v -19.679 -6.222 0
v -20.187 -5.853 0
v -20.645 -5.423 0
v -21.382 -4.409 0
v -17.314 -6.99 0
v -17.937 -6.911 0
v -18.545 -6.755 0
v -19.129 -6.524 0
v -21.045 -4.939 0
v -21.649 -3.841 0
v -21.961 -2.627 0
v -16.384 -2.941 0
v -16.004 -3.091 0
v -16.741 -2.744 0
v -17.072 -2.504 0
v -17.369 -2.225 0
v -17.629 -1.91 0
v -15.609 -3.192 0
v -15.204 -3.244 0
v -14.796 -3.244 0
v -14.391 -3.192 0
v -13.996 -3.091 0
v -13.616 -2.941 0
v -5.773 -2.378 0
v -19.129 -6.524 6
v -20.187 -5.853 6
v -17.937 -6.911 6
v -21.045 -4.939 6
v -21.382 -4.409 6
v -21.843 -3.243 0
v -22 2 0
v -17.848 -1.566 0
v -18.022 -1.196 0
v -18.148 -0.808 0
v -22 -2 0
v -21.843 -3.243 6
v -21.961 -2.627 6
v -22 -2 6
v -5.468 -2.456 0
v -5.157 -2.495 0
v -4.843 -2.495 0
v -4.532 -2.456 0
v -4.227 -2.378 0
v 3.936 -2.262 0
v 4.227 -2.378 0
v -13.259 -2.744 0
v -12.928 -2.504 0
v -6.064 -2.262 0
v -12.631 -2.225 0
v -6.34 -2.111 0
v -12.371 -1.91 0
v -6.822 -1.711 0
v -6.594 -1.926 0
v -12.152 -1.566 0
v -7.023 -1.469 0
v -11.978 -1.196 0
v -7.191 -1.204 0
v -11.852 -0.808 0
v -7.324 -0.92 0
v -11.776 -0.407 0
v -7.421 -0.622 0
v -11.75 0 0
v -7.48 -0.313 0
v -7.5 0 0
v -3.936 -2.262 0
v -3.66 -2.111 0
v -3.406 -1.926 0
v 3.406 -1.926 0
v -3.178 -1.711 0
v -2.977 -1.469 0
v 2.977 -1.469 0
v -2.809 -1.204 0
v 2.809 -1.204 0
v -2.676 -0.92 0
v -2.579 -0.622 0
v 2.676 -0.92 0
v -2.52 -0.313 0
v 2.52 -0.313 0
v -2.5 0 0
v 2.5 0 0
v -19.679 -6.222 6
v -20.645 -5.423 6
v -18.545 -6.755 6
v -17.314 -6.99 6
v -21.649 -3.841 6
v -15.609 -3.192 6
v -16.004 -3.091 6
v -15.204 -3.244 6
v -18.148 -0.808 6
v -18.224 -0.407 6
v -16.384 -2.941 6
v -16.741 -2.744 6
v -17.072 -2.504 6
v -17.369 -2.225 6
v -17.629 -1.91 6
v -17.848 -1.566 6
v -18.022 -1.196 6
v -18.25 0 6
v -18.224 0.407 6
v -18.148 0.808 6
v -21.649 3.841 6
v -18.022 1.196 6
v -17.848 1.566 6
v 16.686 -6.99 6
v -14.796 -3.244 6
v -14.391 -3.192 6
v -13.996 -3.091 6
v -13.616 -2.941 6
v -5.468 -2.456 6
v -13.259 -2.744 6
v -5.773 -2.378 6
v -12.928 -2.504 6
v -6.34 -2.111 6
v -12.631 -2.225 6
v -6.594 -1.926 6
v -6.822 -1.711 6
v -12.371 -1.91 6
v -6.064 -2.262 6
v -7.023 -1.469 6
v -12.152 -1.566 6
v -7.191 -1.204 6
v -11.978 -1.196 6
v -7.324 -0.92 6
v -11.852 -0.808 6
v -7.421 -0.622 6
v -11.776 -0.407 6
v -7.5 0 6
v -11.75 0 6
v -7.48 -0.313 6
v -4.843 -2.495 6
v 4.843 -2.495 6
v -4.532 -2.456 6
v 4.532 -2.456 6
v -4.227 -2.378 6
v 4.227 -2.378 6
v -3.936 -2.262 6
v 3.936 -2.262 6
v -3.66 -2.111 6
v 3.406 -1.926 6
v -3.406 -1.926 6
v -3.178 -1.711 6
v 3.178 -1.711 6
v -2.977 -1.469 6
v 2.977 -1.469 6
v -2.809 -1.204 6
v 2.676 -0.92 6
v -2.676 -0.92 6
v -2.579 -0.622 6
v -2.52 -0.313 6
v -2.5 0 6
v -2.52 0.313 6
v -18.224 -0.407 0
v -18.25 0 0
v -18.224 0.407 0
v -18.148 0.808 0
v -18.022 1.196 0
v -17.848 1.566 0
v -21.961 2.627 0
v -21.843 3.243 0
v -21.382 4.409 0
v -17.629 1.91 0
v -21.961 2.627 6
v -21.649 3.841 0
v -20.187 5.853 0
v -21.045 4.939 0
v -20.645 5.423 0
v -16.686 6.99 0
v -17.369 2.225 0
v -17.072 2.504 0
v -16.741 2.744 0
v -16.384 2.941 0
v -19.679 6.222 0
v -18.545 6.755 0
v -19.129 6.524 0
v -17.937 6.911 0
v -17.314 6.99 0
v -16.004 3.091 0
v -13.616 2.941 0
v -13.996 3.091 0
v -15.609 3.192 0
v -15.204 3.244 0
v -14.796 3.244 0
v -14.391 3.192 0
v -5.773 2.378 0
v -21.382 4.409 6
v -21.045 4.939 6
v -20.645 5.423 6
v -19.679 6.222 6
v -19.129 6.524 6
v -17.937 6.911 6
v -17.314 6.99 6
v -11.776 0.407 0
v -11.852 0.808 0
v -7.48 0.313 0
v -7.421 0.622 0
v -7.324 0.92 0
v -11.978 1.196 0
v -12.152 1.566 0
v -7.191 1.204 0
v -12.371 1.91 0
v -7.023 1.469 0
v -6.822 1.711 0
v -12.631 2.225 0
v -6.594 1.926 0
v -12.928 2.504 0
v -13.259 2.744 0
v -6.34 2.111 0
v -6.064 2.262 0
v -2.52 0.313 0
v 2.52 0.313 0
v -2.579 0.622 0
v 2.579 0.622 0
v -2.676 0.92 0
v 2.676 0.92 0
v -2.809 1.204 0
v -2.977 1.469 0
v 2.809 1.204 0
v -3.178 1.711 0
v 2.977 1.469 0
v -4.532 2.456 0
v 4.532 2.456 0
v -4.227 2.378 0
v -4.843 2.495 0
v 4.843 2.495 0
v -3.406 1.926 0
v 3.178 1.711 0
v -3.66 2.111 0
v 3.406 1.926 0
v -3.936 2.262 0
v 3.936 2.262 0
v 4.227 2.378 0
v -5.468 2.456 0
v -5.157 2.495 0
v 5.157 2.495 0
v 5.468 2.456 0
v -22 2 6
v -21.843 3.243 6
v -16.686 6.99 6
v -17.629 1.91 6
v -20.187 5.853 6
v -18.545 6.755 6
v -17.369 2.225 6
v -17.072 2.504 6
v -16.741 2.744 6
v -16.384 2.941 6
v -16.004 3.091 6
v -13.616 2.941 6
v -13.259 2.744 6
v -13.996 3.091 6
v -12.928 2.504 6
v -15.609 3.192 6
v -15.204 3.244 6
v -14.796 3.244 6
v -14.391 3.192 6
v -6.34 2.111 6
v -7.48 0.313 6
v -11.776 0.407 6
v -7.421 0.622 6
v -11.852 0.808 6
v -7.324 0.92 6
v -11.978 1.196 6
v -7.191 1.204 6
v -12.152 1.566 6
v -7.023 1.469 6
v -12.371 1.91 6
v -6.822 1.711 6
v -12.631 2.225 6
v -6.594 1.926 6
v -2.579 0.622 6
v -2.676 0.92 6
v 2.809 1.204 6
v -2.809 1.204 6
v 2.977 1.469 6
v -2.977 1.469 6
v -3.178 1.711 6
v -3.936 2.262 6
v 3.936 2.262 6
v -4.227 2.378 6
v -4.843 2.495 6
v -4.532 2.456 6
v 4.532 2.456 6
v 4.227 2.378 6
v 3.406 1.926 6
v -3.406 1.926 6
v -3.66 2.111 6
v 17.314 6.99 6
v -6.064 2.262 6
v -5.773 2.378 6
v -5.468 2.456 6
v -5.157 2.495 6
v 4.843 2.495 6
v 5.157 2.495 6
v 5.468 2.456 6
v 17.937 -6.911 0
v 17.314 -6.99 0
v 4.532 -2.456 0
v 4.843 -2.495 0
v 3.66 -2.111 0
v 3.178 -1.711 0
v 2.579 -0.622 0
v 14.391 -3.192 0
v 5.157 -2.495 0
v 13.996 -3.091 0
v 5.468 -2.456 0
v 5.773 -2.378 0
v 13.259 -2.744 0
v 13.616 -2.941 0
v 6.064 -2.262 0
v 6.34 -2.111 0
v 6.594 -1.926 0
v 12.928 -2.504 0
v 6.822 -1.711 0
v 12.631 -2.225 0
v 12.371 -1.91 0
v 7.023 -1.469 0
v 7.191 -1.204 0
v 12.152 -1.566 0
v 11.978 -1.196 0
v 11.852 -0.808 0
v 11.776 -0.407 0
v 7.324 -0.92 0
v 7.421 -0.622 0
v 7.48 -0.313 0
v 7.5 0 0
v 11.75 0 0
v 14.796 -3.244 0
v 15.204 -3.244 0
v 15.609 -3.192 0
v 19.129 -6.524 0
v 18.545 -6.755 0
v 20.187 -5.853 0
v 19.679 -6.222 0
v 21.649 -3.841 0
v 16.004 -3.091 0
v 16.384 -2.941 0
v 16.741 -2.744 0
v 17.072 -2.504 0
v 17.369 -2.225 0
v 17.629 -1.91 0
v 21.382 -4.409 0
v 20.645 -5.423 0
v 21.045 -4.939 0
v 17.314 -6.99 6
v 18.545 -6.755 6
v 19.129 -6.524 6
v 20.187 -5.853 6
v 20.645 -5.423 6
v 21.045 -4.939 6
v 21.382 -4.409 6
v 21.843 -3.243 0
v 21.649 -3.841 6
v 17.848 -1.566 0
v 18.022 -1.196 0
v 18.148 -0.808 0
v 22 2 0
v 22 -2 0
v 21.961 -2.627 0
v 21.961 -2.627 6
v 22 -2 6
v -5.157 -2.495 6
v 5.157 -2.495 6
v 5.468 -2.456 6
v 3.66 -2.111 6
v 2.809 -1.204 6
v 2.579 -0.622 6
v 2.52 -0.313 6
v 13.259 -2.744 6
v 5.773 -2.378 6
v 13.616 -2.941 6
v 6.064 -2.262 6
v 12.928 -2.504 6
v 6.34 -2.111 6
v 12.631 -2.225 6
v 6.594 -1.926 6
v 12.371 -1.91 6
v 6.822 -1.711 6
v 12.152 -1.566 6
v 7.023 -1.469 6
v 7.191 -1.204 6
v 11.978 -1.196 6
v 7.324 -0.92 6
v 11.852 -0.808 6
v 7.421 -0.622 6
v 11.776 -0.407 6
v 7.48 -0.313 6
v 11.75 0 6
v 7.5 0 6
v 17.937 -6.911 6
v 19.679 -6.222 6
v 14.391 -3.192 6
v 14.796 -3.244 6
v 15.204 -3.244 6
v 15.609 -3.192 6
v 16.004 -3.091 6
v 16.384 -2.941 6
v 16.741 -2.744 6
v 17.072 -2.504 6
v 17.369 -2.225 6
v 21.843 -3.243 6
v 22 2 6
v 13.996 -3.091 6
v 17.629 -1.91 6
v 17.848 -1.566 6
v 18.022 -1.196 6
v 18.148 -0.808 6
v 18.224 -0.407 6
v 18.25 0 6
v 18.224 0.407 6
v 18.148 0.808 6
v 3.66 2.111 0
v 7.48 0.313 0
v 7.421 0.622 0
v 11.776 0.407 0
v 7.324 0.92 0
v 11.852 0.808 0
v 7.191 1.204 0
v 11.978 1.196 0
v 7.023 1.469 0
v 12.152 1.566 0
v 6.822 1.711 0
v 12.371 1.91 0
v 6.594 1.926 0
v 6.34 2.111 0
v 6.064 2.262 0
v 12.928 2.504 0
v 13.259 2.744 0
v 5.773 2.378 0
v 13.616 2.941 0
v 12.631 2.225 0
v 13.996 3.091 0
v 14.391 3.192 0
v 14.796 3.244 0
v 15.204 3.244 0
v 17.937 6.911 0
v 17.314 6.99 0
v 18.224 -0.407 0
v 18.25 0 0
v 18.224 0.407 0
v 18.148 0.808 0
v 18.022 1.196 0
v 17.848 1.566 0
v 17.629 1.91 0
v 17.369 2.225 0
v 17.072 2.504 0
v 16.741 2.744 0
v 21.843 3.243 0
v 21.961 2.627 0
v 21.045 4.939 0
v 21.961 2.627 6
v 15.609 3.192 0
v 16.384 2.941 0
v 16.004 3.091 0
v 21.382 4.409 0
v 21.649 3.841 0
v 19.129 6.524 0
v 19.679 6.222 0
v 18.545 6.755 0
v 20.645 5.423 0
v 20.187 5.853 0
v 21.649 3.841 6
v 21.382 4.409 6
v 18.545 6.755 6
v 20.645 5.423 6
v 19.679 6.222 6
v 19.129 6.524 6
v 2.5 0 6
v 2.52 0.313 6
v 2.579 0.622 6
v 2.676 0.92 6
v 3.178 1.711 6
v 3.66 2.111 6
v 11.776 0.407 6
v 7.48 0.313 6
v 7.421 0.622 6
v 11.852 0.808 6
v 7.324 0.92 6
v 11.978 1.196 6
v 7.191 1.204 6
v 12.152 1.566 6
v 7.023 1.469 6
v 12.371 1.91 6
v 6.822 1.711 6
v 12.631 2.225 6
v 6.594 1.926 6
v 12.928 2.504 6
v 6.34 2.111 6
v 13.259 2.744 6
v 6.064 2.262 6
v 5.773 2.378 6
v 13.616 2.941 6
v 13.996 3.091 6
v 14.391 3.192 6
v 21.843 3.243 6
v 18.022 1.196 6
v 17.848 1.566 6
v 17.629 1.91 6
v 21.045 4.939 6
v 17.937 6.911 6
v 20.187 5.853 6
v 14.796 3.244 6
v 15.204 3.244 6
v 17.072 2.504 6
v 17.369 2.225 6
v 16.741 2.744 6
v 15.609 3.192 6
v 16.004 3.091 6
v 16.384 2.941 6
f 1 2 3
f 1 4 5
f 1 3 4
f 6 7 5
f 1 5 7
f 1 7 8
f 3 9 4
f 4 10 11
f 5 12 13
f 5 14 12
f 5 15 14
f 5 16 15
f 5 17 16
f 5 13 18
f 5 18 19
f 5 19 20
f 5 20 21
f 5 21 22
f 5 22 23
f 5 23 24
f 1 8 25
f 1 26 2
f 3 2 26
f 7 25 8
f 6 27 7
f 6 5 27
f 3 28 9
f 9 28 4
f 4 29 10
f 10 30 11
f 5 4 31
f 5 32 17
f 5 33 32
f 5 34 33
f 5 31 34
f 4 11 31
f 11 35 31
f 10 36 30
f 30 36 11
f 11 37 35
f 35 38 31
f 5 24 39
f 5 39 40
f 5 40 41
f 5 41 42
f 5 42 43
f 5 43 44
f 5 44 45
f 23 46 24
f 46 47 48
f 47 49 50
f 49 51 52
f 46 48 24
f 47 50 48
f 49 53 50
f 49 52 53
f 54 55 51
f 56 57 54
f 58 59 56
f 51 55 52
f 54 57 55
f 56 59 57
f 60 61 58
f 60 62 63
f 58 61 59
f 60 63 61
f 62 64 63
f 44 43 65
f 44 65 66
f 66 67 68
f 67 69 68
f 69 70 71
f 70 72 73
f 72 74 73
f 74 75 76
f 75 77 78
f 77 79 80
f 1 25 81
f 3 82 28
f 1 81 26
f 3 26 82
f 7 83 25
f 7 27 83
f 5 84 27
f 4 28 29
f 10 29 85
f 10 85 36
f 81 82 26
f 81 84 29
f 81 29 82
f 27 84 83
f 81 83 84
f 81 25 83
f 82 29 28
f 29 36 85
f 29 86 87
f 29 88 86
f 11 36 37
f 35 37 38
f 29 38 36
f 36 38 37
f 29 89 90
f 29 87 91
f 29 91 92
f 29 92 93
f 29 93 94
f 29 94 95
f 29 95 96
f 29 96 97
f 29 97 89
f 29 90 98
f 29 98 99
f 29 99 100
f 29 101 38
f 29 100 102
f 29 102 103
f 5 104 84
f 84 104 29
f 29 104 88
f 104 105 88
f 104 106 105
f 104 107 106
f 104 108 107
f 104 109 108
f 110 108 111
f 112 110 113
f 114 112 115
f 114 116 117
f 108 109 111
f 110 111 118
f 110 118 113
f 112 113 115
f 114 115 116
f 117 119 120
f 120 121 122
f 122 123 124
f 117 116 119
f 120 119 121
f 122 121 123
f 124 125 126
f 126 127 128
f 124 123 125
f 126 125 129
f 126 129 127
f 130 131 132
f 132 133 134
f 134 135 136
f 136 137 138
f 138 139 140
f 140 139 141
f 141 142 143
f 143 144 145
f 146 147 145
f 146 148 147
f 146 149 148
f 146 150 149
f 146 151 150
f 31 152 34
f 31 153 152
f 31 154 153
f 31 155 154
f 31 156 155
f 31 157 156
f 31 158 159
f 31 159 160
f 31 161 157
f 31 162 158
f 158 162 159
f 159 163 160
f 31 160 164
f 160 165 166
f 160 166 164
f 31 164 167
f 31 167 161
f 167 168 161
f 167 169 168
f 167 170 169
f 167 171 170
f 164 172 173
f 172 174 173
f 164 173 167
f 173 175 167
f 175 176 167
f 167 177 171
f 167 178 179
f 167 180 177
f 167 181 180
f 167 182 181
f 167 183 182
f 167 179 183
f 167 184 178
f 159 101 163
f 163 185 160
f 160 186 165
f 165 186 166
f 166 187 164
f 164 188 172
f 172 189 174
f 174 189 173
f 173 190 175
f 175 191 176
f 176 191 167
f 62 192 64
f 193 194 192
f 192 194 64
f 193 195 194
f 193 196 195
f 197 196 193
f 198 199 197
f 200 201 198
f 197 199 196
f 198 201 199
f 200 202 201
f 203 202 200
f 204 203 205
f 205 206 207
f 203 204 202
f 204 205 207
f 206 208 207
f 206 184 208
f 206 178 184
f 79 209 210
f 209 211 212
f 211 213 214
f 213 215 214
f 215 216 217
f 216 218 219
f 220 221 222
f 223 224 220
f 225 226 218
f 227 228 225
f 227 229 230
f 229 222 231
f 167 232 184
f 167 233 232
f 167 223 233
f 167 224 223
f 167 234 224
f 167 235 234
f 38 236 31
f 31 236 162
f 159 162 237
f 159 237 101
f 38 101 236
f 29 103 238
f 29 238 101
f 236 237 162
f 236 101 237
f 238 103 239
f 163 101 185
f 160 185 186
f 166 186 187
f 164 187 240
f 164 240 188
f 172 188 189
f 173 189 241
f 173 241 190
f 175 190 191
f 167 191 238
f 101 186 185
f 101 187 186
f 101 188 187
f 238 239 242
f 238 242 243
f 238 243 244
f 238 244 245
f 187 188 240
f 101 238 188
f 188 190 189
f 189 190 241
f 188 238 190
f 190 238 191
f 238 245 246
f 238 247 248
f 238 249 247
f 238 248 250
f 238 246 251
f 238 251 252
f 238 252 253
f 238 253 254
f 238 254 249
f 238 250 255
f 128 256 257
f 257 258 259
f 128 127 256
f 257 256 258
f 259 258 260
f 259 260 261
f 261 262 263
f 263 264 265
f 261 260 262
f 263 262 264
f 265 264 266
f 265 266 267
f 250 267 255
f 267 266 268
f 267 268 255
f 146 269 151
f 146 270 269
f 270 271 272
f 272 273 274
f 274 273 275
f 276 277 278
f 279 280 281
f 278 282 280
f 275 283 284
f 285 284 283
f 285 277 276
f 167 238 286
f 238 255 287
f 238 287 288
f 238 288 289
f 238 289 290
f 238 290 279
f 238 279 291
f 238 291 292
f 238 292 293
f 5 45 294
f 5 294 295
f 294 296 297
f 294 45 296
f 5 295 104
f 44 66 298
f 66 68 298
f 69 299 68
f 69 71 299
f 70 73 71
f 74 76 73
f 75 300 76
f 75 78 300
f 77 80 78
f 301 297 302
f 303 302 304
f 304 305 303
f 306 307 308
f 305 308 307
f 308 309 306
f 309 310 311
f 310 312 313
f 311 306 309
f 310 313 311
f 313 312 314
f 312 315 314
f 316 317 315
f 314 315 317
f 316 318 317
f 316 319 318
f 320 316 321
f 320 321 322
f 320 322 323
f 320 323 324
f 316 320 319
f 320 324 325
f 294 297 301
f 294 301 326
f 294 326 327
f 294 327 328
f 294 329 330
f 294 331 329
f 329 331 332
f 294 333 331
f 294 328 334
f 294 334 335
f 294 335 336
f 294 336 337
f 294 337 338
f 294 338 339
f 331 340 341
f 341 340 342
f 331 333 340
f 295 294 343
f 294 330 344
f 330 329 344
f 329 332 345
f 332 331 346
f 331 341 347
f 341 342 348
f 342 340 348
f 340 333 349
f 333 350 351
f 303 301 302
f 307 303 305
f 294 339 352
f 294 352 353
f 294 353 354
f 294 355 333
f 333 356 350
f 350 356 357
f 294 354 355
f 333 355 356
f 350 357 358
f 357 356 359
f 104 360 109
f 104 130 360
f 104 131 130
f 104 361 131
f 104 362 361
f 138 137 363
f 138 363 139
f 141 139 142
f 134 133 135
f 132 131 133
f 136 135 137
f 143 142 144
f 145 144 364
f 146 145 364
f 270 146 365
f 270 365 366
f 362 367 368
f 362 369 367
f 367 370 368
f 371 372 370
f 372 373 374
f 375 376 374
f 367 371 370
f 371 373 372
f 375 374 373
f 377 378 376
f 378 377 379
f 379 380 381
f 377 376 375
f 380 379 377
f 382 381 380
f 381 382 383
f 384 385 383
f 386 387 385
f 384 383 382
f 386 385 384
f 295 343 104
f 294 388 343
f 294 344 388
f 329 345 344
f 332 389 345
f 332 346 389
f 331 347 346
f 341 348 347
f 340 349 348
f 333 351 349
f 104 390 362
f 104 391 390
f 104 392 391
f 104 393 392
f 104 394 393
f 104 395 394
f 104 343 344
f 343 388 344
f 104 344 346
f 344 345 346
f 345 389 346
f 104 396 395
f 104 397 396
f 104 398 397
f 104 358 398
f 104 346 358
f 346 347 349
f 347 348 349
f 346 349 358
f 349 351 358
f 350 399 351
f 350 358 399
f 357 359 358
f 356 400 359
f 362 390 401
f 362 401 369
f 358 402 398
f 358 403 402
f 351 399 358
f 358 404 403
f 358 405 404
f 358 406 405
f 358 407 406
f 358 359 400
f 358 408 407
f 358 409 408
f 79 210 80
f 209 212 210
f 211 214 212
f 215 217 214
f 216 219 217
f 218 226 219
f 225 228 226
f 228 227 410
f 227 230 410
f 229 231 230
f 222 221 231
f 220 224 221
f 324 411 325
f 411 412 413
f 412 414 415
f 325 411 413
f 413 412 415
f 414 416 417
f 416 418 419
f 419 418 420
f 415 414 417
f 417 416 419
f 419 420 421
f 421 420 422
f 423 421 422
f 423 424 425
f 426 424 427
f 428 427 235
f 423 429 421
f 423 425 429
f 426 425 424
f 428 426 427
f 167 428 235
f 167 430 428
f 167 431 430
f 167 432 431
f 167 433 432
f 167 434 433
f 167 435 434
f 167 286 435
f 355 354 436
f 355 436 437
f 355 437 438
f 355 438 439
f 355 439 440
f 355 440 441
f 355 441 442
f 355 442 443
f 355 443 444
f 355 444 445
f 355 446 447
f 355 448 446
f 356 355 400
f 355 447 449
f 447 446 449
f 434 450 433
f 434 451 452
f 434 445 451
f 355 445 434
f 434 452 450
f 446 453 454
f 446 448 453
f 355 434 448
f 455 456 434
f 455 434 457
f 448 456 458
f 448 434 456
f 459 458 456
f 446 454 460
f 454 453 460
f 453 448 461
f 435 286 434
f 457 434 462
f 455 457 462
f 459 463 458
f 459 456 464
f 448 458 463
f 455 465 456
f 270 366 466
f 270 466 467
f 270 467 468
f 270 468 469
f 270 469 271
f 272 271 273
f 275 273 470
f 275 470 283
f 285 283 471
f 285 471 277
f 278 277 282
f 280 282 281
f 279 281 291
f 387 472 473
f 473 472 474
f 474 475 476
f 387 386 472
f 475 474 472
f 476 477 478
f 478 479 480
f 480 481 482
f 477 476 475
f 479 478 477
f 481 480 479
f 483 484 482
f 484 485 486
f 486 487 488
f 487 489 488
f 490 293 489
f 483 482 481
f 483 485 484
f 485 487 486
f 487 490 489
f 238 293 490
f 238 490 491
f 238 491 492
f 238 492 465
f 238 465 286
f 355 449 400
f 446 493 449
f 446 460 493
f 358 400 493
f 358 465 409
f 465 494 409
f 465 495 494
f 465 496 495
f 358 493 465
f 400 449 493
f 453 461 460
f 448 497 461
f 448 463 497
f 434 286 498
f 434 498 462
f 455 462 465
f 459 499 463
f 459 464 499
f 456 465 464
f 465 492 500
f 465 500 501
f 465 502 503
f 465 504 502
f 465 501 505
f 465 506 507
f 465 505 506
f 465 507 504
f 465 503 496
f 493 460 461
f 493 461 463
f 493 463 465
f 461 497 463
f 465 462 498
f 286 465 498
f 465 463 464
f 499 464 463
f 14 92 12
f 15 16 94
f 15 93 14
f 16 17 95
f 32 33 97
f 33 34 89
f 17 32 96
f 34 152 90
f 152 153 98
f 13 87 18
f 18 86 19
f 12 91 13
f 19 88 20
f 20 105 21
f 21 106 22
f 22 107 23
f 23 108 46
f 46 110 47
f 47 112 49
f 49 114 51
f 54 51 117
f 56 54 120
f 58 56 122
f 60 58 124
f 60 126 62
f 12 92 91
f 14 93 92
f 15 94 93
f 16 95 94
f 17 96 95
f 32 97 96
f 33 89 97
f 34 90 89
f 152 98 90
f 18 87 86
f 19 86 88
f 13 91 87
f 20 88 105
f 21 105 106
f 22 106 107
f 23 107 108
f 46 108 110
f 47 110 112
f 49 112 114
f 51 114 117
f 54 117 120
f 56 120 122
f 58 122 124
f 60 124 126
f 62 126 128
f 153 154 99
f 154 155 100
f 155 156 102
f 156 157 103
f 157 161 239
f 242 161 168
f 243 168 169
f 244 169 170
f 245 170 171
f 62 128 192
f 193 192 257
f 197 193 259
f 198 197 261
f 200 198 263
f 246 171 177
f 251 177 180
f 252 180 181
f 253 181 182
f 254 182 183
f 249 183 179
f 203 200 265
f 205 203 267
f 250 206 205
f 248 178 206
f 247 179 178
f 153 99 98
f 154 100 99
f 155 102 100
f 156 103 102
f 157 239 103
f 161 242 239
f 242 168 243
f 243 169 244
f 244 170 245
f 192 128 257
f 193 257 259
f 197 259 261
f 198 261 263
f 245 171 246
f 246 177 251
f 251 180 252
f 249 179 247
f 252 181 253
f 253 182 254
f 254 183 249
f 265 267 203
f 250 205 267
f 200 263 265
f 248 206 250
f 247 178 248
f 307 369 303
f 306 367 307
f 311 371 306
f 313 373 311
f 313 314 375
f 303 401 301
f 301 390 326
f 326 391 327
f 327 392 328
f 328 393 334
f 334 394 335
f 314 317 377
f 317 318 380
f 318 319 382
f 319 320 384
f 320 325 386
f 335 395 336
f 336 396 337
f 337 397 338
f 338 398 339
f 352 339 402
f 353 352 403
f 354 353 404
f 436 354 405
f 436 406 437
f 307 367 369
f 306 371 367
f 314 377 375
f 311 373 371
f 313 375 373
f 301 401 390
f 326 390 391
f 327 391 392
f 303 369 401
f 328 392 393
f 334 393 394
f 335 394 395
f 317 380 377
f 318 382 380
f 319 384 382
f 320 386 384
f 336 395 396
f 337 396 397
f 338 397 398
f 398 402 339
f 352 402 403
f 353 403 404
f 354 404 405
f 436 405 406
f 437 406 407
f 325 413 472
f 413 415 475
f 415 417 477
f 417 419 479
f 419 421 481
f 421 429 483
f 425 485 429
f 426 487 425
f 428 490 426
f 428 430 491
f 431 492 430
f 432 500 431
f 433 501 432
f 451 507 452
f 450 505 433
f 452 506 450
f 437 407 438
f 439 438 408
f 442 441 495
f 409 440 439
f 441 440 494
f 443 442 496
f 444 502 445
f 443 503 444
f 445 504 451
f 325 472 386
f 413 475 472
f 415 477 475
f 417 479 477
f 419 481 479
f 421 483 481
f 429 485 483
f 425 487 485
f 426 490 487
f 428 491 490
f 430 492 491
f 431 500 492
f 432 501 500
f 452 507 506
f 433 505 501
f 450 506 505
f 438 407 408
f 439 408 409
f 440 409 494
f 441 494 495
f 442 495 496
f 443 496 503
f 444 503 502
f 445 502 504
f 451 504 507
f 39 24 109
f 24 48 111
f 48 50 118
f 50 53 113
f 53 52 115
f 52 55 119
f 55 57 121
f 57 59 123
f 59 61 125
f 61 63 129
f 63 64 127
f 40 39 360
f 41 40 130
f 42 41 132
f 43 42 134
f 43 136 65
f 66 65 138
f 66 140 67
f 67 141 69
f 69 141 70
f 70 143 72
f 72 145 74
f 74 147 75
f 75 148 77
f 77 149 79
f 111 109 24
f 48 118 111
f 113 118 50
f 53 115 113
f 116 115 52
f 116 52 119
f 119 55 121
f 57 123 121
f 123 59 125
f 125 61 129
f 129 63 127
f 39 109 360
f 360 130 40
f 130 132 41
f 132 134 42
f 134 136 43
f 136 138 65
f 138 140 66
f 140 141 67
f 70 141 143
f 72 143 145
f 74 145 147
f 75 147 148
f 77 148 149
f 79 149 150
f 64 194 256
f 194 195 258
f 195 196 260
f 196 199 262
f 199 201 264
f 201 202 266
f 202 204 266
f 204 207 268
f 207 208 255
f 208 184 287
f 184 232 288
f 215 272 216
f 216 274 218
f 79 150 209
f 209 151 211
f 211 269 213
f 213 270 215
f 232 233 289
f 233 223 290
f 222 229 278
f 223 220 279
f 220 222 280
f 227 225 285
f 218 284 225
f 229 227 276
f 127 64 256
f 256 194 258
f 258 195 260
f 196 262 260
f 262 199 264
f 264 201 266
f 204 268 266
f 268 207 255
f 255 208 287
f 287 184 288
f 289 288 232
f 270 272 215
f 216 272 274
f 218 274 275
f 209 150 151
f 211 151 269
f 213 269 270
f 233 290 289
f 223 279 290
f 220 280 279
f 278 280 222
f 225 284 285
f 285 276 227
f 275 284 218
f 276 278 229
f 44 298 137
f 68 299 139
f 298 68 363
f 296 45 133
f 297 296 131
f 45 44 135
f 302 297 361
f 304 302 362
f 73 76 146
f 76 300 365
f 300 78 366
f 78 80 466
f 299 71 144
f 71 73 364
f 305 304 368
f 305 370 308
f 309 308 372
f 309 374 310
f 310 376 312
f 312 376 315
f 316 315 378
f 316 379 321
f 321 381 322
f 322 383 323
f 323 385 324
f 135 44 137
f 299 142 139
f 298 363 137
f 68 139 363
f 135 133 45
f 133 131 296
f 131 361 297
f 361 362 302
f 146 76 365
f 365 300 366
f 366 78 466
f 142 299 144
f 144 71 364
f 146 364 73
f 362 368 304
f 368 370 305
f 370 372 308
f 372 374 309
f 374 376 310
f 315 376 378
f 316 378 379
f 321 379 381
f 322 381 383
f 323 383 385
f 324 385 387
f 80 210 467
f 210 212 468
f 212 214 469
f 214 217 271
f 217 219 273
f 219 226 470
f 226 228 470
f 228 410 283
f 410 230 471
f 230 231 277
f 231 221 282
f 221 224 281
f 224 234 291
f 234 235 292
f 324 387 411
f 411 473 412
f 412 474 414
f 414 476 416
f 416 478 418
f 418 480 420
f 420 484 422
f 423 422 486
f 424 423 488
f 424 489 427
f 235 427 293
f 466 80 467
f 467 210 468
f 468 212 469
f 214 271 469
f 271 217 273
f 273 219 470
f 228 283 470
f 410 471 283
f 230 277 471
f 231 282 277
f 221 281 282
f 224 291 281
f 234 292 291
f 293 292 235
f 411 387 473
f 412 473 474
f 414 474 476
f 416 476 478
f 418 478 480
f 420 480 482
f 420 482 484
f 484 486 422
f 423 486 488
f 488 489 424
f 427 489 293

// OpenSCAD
$fn = 50;

difference() {
	union() {
		hull() {
			translate(v = [-17.0, 2.0, 0]) {
				cylinder(h = 6, r = 5);
			}
			translate(v = [17.0, 2.0, 0]) {
				cylinder(h = 6, r = 5);
			}
			translate(v = [-17.0, -2.0, 0]) {
				cylinder(h = 6, r = 5);
			}
			translate(v = [17.0, -2.0, 0]) {
				cylinder(h = 6, r = 5);
			}
		}
	}
	union() {
		translate(v = [-15.0, 0.0, 0]) {
			cylinder(h = 6, r = 3.25);
		}
		translate(v = [15.0, 0.0, 0]) {
			cylinder(h = 6, r = 3.25);
		}
		translate(v = [-5.0, 0, 0.0]) {
			cylinder(h = 6, r = 2.5);
		}
		translate(v = [5.0, 0, 0.0]) {
			cylinder(h = 6, r = 2.5);
		}
	}
}
